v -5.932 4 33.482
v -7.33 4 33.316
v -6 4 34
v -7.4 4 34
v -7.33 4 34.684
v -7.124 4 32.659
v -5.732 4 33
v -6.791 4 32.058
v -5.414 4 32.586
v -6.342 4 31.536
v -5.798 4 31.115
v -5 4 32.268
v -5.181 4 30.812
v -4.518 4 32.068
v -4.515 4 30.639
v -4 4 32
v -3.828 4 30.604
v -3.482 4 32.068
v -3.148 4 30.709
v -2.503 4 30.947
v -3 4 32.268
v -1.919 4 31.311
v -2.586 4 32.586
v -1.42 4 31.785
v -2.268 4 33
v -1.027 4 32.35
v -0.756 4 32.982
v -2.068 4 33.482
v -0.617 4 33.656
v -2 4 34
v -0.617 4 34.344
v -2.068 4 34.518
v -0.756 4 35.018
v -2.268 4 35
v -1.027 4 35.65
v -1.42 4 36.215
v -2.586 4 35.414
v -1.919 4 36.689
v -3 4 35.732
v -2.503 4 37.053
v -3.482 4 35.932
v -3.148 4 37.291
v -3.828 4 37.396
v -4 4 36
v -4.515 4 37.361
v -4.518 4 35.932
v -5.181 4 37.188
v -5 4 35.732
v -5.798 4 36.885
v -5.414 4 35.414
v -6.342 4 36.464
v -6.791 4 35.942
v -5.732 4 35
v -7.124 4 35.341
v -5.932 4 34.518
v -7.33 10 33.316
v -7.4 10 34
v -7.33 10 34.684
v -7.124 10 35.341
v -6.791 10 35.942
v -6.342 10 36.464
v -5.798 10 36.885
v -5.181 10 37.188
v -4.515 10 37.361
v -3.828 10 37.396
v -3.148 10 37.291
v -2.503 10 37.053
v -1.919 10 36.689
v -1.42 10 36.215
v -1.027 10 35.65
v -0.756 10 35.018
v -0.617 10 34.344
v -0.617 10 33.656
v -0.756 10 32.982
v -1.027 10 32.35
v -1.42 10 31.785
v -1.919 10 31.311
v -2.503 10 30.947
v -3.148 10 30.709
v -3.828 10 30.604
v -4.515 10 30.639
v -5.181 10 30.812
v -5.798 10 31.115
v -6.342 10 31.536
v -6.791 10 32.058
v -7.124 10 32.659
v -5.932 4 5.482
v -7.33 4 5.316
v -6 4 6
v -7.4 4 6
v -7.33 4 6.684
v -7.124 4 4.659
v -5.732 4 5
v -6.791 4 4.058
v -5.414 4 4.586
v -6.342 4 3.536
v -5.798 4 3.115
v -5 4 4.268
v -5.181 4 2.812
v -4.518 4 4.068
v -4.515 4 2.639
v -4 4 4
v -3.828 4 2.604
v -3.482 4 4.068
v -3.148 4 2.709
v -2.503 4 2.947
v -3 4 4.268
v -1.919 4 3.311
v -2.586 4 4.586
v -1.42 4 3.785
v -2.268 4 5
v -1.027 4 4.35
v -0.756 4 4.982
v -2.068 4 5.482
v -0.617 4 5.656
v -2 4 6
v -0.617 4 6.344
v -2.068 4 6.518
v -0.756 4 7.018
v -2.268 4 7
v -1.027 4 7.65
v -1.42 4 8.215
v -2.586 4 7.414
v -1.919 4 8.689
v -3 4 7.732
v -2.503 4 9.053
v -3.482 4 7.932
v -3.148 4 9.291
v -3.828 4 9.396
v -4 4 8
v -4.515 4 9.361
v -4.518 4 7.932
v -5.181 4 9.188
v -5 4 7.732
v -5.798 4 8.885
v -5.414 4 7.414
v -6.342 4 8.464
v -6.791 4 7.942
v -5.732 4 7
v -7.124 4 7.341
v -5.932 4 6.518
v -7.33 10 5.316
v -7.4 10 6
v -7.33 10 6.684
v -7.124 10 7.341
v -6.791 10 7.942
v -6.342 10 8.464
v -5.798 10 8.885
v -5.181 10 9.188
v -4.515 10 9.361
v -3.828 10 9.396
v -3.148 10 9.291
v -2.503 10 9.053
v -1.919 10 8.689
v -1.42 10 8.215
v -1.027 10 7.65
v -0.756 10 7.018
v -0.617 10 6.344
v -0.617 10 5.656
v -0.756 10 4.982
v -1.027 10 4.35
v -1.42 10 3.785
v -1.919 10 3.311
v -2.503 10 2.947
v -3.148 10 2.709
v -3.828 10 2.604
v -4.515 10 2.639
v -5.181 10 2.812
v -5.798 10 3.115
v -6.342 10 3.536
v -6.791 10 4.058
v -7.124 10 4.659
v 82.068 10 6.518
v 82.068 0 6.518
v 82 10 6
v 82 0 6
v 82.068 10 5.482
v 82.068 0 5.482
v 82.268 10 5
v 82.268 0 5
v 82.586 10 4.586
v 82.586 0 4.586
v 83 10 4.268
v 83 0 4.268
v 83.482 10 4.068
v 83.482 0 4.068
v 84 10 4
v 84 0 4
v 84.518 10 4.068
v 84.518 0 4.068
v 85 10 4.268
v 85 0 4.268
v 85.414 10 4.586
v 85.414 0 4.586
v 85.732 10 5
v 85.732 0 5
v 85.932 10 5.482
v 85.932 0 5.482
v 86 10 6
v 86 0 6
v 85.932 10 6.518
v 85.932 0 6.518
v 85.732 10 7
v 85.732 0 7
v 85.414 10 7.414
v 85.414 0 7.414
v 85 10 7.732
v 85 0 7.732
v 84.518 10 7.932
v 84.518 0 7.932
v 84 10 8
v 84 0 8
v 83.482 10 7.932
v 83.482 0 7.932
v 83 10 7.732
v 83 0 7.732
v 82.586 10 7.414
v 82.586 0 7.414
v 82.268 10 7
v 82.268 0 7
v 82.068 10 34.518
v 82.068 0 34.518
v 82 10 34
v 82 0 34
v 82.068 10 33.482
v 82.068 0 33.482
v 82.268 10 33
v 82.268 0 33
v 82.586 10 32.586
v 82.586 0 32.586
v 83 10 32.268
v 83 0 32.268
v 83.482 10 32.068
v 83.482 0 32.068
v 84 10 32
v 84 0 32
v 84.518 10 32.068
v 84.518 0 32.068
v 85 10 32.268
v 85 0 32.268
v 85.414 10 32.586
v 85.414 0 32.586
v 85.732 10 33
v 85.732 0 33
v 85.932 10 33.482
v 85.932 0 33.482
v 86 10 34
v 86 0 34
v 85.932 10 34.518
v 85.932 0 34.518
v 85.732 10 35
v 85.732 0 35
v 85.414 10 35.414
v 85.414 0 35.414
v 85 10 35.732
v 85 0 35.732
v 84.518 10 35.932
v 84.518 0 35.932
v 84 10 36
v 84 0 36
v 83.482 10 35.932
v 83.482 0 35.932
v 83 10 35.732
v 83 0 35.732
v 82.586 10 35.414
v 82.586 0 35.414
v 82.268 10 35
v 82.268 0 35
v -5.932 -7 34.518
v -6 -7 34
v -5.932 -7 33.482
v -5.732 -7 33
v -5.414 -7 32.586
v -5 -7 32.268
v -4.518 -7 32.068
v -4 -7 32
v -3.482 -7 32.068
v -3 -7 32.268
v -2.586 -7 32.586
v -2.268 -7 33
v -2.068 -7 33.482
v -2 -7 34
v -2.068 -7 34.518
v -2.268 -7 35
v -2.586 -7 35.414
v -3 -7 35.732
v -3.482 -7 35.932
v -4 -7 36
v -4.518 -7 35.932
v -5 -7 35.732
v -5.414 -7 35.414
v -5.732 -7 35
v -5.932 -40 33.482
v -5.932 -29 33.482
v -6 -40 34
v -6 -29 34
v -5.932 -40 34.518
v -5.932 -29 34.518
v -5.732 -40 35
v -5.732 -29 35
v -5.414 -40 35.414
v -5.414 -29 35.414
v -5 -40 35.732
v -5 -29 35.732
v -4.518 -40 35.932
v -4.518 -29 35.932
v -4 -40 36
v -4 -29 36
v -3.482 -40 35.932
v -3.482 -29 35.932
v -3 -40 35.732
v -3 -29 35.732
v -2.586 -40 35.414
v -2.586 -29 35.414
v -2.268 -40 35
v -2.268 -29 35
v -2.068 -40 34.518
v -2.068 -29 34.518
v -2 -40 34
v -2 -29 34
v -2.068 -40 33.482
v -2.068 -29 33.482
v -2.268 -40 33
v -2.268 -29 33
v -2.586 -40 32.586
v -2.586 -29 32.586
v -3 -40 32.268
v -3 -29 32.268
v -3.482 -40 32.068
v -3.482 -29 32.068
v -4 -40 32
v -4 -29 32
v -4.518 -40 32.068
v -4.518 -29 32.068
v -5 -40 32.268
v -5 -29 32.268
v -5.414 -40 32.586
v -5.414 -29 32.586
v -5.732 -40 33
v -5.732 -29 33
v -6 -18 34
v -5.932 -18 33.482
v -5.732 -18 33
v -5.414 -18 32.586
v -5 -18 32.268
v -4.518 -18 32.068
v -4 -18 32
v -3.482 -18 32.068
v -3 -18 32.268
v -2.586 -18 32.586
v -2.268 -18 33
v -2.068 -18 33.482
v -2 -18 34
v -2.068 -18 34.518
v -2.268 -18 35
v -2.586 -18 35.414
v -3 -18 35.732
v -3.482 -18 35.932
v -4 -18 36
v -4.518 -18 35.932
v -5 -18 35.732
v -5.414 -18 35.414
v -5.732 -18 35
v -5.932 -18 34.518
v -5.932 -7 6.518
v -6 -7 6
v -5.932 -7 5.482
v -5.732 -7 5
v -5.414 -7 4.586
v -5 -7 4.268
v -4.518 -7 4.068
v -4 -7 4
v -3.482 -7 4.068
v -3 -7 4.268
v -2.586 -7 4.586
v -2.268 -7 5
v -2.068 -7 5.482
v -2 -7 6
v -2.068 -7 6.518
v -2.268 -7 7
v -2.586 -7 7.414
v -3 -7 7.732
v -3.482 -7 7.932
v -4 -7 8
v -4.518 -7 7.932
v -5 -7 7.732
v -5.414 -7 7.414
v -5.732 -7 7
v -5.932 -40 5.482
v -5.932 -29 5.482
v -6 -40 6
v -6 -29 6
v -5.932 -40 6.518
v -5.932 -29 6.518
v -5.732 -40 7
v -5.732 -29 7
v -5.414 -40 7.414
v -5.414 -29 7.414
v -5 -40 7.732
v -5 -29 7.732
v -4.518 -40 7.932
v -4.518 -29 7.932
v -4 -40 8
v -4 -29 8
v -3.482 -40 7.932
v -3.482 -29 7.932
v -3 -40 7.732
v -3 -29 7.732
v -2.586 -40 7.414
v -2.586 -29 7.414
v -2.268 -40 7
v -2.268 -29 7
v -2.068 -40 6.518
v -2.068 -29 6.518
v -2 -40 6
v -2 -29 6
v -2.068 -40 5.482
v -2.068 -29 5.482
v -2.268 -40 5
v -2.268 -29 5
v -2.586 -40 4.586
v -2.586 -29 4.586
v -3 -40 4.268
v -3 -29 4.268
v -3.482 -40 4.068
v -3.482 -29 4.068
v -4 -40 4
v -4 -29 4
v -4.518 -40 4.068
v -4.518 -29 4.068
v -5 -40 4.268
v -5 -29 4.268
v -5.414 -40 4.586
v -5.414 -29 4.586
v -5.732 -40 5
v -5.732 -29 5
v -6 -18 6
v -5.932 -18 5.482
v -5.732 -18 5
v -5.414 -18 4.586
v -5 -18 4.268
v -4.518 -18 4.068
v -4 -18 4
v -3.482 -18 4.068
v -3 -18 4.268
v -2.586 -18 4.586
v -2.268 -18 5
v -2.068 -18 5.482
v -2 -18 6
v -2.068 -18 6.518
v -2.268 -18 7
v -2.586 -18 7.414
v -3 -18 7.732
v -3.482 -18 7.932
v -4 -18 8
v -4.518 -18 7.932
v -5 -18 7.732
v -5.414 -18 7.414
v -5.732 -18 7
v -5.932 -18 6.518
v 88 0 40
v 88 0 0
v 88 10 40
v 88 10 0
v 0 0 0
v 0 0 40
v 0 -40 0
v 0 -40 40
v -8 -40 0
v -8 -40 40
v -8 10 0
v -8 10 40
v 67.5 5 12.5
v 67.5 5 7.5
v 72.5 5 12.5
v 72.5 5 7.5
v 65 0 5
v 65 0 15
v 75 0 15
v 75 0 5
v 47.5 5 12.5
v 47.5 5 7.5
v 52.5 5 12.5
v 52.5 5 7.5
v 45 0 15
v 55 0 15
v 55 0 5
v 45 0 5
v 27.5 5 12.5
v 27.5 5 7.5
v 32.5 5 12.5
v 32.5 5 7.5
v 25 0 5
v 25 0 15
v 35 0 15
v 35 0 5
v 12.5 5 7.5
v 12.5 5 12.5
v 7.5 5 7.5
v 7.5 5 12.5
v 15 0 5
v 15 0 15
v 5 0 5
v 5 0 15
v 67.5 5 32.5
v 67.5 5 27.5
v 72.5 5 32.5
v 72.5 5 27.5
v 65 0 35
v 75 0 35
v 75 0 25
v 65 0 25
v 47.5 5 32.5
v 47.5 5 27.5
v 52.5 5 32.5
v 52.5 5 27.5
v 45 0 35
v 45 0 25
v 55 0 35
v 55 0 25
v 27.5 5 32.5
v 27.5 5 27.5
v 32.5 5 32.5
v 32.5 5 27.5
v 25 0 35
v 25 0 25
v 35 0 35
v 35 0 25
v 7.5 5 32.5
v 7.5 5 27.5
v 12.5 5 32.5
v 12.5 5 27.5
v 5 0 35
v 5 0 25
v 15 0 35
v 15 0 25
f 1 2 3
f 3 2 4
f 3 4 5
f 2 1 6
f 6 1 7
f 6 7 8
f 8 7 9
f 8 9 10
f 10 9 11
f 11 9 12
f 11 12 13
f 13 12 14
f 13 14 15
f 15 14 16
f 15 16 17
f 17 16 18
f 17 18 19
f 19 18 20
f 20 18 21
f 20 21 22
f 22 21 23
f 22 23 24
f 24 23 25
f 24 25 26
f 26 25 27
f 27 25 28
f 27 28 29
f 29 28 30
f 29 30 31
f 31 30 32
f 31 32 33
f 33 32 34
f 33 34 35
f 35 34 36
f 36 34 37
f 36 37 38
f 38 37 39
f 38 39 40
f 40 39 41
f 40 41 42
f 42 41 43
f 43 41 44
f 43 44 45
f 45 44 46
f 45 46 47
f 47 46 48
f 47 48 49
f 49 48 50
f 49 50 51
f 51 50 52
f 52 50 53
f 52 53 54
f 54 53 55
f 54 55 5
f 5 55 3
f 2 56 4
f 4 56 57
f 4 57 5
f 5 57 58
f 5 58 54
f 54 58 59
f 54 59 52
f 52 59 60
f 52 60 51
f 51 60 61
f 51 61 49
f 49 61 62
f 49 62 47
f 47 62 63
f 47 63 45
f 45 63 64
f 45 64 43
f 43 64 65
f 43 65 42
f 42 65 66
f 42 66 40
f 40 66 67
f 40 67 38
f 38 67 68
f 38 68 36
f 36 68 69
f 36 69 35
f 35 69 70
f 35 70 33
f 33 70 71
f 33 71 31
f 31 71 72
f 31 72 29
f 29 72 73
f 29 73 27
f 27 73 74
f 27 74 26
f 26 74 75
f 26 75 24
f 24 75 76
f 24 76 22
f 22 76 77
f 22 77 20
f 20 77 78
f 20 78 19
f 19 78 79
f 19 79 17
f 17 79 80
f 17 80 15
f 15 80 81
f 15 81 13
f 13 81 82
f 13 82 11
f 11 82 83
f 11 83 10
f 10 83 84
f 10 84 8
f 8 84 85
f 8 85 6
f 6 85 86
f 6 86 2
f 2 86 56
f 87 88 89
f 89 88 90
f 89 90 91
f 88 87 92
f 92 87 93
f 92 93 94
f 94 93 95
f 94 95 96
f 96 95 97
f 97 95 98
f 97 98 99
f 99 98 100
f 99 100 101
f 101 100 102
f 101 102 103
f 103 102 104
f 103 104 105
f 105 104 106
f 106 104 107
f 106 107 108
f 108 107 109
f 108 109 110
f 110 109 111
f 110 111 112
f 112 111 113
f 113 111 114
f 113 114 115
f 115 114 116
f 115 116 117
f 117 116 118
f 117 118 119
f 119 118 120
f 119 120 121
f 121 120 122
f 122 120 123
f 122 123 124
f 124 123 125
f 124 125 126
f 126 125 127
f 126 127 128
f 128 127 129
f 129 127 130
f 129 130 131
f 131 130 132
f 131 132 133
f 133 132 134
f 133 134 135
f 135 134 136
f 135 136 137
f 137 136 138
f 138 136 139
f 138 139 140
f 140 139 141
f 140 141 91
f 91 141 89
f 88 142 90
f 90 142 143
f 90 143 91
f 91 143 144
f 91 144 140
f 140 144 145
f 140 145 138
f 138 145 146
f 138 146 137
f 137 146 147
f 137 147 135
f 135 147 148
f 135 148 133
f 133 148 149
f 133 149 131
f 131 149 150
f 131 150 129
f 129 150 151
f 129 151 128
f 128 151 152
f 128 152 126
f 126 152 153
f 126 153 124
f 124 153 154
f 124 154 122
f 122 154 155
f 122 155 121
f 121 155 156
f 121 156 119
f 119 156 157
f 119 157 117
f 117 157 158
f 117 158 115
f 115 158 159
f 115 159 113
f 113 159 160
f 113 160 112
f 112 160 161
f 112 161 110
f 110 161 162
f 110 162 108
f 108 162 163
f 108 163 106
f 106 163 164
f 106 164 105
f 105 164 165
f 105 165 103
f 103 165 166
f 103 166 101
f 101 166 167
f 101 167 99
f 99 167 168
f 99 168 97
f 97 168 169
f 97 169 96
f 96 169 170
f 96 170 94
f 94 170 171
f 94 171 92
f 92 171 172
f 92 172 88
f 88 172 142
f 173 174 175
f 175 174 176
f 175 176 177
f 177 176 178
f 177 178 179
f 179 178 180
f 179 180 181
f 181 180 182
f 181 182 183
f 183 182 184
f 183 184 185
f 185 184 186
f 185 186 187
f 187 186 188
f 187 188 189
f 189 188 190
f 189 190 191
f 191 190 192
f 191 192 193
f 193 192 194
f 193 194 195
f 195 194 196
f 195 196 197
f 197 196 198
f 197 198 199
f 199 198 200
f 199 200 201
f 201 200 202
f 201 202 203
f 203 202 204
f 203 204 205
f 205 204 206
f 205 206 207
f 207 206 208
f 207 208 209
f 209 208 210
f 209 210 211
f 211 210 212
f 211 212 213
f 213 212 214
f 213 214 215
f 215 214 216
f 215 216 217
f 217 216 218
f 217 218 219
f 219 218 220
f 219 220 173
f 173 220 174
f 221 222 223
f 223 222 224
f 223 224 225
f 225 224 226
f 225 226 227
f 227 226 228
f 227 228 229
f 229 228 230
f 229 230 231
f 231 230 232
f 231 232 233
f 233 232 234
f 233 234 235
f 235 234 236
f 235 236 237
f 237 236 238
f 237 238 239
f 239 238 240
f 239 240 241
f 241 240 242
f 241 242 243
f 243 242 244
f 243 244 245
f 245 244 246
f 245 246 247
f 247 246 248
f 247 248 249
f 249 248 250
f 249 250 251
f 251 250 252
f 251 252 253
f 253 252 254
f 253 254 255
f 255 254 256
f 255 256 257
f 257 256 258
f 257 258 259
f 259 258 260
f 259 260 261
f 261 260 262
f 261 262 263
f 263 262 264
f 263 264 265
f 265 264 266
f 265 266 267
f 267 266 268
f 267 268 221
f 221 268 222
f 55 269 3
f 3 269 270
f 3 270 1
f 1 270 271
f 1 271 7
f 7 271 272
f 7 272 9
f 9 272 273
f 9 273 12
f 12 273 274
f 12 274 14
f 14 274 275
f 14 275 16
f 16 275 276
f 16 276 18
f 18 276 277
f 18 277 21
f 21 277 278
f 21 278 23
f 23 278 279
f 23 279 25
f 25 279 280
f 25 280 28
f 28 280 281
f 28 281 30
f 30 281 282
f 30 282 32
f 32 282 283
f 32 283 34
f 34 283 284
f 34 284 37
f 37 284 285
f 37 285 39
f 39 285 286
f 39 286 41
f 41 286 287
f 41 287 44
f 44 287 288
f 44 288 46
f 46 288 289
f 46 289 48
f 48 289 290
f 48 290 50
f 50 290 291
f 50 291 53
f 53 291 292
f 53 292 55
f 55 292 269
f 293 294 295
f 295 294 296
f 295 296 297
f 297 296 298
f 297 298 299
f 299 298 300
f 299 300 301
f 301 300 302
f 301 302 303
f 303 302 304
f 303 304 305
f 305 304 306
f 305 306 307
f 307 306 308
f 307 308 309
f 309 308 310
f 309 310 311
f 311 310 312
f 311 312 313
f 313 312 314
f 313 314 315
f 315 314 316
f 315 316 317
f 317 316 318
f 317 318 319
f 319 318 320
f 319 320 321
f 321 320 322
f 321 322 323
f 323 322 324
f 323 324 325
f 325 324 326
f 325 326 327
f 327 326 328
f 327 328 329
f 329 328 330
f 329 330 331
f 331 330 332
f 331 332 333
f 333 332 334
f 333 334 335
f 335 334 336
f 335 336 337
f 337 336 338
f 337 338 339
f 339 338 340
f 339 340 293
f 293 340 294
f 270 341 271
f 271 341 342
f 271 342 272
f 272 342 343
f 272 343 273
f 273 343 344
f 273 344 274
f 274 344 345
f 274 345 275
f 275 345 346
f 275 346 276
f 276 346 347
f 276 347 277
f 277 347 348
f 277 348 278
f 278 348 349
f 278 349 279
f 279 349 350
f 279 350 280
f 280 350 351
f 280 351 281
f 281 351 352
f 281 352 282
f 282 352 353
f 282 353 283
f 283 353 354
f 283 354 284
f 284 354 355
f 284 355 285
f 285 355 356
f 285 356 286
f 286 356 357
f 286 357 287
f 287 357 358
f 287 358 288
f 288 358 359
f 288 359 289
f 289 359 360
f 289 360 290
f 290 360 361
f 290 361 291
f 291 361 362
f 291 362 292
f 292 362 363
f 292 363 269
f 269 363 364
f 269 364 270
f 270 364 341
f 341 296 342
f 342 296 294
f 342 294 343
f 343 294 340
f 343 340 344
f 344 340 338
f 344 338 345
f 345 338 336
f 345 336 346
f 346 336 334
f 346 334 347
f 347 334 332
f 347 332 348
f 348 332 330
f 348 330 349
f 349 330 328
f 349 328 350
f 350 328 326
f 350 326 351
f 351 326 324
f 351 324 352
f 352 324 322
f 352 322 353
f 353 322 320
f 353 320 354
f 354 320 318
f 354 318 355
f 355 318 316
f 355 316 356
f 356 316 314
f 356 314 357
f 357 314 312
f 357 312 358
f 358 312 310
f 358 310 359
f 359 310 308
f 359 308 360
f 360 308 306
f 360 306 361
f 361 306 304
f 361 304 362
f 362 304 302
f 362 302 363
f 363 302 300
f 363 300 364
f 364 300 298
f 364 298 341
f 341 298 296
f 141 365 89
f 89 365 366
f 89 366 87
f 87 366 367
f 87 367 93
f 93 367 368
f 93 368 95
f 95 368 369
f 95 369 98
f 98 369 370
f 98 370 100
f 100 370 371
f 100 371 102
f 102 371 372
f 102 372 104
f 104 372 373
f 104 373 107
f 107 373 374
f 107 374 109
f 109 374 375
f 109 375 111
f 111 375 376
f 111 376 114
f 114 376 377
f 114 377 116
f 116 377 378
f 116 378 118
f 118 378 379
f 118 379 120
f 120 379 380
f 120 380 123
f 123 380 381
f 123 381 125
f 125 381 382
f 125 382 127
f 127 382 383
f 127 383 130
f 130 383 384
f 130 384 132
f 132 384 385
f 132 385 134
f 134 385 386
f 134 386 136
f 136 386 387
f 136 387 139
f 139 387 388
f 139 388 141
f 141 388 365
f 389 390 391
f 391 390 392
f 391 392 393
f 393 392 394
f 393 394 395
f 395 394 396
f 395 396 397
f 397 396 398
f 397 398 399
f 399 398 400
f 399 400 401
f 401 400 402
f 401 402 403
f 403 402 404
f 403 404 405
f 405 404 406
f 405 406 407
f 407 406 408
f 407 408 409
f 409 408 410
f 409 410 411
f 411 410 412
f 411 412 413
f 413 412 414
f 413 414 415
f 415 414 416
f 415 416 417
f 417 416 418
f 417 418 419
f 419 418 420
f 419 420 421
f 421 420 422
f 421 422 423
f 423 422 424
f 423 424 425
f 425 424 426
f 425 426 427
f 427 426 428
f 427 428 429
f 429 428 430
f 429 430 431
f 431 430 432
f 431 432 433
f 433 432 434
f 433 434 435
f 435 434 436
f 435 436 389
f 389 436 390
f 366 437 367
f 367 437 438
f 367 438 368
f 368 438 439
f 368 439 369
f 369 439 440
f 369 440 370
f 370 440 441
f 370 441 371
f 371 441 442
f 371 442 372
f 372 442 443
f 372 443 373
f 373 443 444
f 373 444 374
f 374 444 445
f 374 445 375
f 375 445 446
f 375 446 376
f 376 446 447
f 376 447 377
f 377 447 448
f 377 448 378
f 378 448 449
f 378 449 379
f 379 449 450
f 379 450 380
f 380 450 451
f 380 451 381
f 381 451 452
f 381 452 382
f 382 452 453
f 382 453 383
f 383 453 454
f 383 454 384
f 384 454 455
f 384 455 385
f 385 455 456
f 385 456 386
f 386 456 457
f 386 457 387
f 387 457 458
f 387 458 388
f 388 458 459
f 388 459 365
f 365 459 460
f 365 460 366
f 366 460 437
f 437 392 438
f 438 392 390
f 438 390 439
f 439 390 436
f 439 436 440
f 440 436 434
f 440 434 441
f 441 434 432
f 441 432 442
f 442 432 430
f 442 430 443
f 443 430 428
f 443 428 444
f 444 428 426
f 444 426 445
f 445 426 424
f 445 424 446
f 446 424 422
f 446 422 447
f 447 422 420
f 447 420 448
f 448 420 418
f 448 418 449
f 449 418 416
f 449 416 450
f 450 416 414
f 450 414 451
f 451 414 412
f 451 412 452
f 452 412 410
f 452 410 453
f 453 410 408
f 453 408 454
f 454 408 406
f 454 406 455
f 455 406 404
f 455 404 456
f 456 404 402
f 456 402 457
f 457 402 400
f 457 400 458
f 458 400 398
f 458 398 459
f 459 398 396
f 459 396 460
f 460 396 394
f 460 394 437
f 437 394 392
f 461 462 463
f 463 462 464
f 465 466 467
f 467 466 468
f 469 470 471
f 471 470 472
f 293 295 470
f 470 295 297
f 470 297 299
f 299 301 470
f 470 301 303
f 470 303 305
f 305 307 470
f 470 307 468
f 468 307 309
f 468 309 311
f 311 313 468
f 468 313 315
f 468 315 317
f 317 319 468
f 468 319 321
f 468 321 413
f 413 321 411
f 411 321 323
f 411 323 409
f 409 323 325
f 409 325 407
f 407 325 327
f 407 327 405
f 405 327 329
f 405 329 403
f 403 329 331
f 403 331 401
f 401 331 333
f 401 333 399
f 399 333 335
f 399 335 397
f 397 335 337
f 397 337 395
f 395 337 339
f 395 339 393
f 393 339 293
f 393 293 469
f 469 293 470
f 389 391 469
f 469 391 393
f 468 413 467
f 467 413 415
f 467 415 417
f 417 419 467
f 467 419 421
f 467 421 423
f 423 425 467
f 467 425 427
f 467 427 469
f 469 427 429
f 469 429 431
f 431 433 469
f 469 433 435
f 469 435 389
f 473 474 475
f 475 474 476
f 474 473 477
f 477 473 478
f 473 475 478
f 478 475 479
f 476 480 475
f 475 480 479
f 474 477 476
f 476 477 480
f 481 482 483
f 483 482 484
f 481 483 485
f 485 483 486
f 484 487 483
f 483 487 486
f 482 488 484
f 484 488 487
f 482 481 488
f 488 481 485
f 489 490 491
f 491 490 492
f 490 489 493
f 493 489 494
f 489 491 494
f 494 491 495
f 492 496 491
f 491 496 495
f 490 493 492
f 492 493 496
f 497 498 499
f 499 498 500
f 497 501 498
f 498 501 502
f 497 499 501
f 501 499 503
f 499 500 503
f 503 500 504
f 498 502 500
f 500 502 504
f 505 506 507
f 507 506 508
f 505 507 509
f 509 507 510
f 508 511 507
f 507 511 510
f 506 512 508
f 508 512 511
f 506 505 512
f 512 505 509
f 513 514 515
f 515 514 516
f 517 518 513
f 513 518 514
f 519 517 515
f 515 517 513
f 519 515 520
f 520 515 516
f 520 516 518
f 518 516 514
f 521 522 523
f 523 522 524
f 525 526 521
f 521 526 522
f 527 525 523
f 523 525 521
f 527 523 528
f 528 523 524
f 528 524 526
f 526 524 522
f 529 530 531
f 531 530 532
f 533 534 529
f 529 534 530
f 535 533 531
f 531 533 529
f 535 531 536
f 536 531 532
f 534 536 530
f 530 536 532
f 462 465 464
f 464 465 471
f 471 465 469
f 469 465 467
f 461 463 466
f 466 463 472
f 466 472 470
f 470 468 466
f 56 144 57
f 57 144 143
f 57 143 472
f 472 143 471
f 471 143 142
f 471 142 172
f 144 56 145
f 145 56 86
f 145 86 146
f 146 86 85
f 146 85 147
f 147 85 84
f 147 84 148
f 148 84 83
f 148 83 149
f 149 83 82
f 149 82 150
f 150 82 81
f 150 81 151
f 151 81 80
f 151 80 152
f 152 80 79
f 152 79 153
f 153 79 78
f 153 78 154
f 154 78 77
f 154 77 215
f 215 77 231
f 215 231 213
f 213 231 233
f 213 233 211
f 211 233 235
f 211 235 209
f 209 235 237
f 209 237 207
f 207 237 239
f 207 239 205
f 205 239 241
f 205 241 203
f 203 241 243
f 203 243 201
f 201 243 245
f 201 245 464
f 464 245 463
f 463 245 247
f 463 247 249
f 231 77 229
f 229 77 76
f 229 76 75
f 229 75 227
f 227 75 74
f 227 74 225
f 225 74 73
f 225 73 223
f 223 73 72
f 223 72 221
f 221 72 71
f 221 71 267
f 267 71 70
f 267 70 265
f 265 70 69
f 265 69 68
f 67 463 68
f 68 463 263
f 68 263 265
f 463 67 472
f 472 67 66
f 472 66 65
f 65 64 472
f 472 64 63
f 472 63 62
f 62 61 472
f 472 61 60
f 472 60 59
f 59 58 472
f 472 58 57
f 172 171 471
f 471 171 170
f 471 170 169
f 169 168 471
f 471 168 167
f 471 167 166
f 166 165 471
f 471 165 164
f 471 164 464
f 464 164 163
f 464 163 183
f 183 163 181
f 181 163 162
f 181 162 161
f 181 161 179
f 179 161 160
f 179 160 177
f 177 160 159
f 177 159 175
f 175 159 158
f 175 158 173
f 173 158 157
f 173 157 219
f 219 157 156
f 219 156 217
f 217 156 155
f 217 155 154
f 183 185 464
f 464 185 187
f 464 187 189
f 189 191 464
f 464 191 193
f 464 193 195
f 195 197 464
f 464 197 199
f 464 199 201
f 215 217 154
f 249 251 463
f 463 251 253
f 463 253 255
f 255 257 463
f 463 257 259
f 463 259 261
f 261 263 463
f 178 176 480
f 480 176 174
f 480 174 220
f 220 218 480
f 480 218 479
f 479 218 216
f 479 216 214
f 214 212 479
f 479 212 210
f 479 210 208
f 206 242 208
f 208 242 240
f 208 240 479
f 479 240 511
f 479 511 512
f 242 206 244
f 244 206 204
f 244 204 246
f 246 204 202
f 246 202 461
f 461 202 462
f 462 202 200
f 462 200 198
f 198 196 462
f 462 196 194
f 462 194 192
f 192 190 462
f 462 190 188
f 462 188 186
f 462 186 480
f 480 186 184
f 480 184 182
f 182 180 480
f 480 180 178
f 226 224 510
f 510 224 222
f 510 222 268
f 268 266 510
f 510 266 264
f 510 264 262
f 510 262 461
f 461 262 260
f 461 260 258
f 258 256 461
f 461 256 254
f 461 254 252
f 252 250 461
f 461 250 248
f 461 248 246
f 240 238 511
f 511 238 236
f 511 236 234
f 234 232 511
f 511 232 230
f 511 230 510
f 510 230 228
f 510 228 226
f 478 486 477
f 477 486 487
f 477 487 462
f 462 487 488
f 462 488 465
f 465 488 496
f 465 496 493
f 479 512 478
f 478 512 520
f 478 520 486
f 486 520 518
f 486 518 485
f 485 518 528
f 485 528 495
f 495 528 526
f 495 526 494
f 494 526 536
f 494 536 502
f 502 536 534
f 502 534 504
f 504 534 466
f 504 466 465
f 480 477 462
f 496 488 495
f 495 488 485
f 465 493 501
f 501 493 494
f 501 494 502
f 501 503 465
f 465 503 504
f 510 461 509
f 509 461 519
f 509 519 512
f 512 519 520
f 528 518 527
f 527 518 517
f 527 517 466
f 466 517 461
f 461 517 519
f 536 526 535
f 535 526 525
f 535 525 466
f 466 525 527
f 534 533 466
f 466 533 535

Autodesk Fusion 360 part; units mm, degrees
sketch "baseplate" plane through (0, 0, 0) normal (0, 1, 0) x (1, 0, 0)
  line L0 (0, 0) -> (80, 0)
  line L1 (80, 0) -> (80, -40)
  line L2 (80, -40) -> (0, -40)
  line L3 (0, -40) -> (0, 0)
  dimension "d1" = 40
  dimension "d2" = 80
extrude "Extrude1" add sketch "baseplate" along normal blind 10
sketch "outside_pryamid" plane through (0, 0, 0) normal (0, 1, 0) x (1, 0, 0)
  line L0 (5, -35) -> (15, -35)
  line L1 (15, -35) -> (15, -25)
  line L2 (15, -25) -> (5, -25)
  line L3 (5, -25) -> (5, -35)
  line L4 (25, -35) -> (35, -35)
  line L5 (35, -35) -> (35, -25)
  line L6 (35, -25) -> (25, -25)
  line L7 (25, -25) -> (25, -35)
  line L8 (45, -35) -> (55, -35)
  line L9 (55, -35) -> (55, -25)
  line L10 (55, -25) -> (45, -25)
  line L11 (45, -25) -> (45, -35)
  line L12 (65, -35) -> (75, -35)
  line L13 (75, -35) -> (75, -25)
  line L14 (75, -25) -> (65, -25)
  line L15 (65, -25) -> (65, -35)
  line L16 (25, -15) -> (35, -15)
  line L17 (35, -15) -> (35, -5)
  line L18 (35, -5) -> (25, -5)
  line L19 (25, -5) -> (25, -15)
  line L20 (5, -15) -> (15, -15)
  line L21 (15, -15) -> (15, -5)
  line L22 (15, -5) -> (5, -5)
  line L23 (5, -5) -> (5, -15)
  line L24 (45, -15) -> (55, -15)
  line L25 (55, -15) -> (55, -5)
  line L26 (55, -5) -> (45, -5)
  line L27 (45, -5) -> (45, -15)
  line L28 (65, -15) -> (75, -15)
  line L29 (75, -15) -> (75, -5)
  line L30 (75, -5) -> (65, -5)
  line L31 (65, -5) -> (65, -15)
  dimension "d5" = 10
  dimension "d6" = 10
ref_plane "WorkPlane1" through (0, 5, 0) normal (0, 1, 0) x (0, 0, 1)
sketch "inside_pryamid" plane through (0, 5, 0) normal (0, 1, 0) x (1, 0, 0)
  line L0 (7.5, -10) -> (7.5, -12.5)
  line L1 (7.5, -12.5) -> (12.5, -12.5)
  line L2 (12.5, -12.5) -> (12.5, -7.5)
  line L3 (12.5, -7.5) -> (7.5, -7.5)
  line L4 (7.5, -7.5) -> (7.5, -10)
  line L5 (32.5, -7.5) -> (27.5, -7.5)
  line L6 (27.5, -10) -> (27.5, -12.5)
  line L7 (32.5, -12.5) -> (32.5, -7.5)
  line L8 (27.5, -7.5) -> (27.5, -10)
  line L9 (27.5, -12.5) -> (32.5, -12.5)
  line L10 (47.5, -7.5) -> (47.5, -10)
  line L11 (47.5, -12.5) -> (52.5, -12.5)
  line L12 (52.5, -7.5) -> (47.5, -7.5)
  line L13 (47.5, -10) -> (47.5, -12.5)
  line L14 (52.5, -12.5) -> (52.5, -7.5)
  line L15 (67.5, -10) -> (67.5, -12.5)
  line L16 (67.5, -12.5) -> (72.5, -12.5)
  line L17 (67.5, -7.5) -> (67.5, -10)
  line L18 (72.5, -12.5) -> (72.5, -7.5)
  line L19 (72.5, -7.5) -> (67.5, -7.5)
  line L20 (67.5, -10) -> (67.5, -12.5)
  line L21 (7.5, -7.5) -> (7.5, -10)
  line L22 (12.5, -7.5) -> (7.5, -7.5)
  line L23 (7.5, -10) -> (7.5, -12.5)
  line L24 (67.5, -12.5) -> (72.5, -12.5)
  line L25 (27.5, -10) -> (27.5, -12.5)
  line L26 (27.5, -12.5) -> (32.5, -12.5)
  line L27 (7.5, -12.5) -> (12.5, -12.5)
  line L28 (32.5, -12.5) -> (32.5, -7.5)
  line L29 (72.5, -12.5) -> (72.5, -7.5)
  line L30 (47.5, -7.5) -> (47.5, -10)
  line L31 (52.5, -12.5) -> (52.5, -7.5)
  line L32 (72.5, -7.5) -> (67.5, -7.5)
  line L33 (47.5, -10) -> (47.5, -12.5)
  line L34 (52.5, -7.5) -> (47.5, -7.5)
  line L35 (67.5, -7.5) -> (67.5, -10)
  line L36 (47.5, -12.5) -> (52.5, -12.5)
  line L37 (32.5, -7.5) -> (27.5, -7.5)
  line L38 (27.5, -7.5) -> (27.5, -10)
  line L39 (12.5, -12.5) -> (12.5, -7.5)
  line L40 (72.5, -32.5) -> (72.5, -27.5)
  line L41 (12.5, -32.5) -> (12.5, -27.5)
  line L42 (72.5, -27.5) -> (67.5, -27.5)
  line L43 (7.5, -30) -> (7.5, -32.5)
  line L44 (67.5, -30) -> (67.5, -32.5)
  line L45 (72.5, -27.5) -> (67.5, -27.5)
  line L46 (67.5, -27.5) -> (67.5, -30)
  line L47 (47.5, -30) -> (47.5, -32.5)
  line L48 (12.5, -27.5) -> (7.5, -27.5)
  line L49 (67.5, -27.5) -> (67.5, -30)
  line L50 (67.5, -30) -> (67.5, -32.5)
  line L51 (7.5, -32.5) -> (12.5, -32.5)
  line L52 (67.5, -32.5) -> (72.5, -32.5)
  line L53 (72.5, -32.5) -> (72.5, -27.5)
  line L54 (7.5, -30) -> (7.5, -32.5)
  line L55 (47.5, -32.5) -> (52.5, -32.5)
  line L56 (47.5, -32.5) -> (52.5, -32.5)
  line L57 (67.5, -32.5) -> (72.5, -32.5)
  line L58 (52.5, -32.5) -> (52.5, -27.5)
  line L59 (7.5, -32.5) -> (12.5, -32.5)
  line L60 (52.5, -27.5) -> (47.5, -27.5)
  line L61 (52.5, -27.5) -> (47.5, -27.5)
  line L62 (47.5, -30) -> (47.5, -32.5)
  line L63 (7.5, -27.5) -> (7.5, -30)
  line L64 (27.5, -30) -> (27.5, -32.5)
  line L65 (32.5, -27.5) -> (27.5, -27.5)
  line L66 (27.5, -32.5) -> (32.5, -32.5)
  line L67 (52.5, -32.5) -> (52.5, -27.5)
  line L68 (27.5, -27.5) -> (27.5, -30)
  line L69 (32.5, -32.5) -> (32.5, -27.5)
  line L70 (27.5, -32.5) -> (32.5, -32.5)
  line L71 (27.5, -30) -> (27.5, -32.5)
  line L72 (12.5, -27.5) -> (7.5, -27.5)
  line L73 (7.5, -27.5) -> (7.5, -30)
  line L74 (47.5, -27.5) -> (47.5, -30)
  line L75 (12.5, -32.5) -> (12.5, -27.5)
  line L76 (47.5, -27.5) -> (47.5, -30)
  line L77 (32.5, -32.5) -> (32.5, -27.5)
  line L78 (32.5, -27.5) -> (27.5, -27.5)
  line L79 (27.5, -27.5) -> (27.5, -30)
loft "Loft1" cut profiles "outside_pryamid", "inside_pryamid" section 1 contours L0 L1 L2 L3 section 2 contours L41 L43 L48 L51 L54 L59 L63 L72 L73 L75
loft "Loft2" cut profiles "outside_pryamid", "inside_pryamid" section 1 contours L4 L5 L6 L7 section 2 contours L64 L65 L66 L68 L69 L70 L71 L77 L78 L79
loft "Loft3" cut profiles "outside_pryamid", "inside_pryamid" section 1 contours L8 L9 L10 L11 section 2 contours L47 L55 L56 L58 L60 L61 L62 L67 L74 L76
loft "Loft4" cut profiles "inside_pryamid", "outside_pryamid" section 1 contours L40 L42 L44 L45 L46 L49 L50 L52 L53 L57 section 2 contours L12 L13 L14 L15
loft "Loft5" cut profiles "inside_pryamid", "outside_pryamid" section 1 contours L0 L1 L2 L3 L4 L21 L22 L23 L27 L39 section 2 contours L20 L21 L22 L23
loft "Loft6" cut profiles "inside_pryamid", "outside_pryamid" section 1 contours L5 L6 L7 L8 L9 L25 L26 L28 L37 L38 section 2 contours L16 L17 L18 L19
loft "Loft7" cut profiles "inside_pryamid", "outside_pryamid" section 1 contours L10 L11 L12 L13 L14 L30 L31 L33 L34 L36 section 2 contours L24 L25 L26 L27
loft "Loft8" cut profiles "inside_pryamid", "outside_pryamid" section 1 contours L15 L16 L17 L18 L19 L20 L24 L29 L32 L35 section 2 contours L28 L29 L30 L31
sketch "sidewall" plane through (0, 0, 0) normal (0, 1, 0) x (1, 0, 0)
  line L0 (0, 0) -> (-8, 0)
  line L1 (-8, 0) -> (-8, -40)
  line L2 (-8, -40) -> (0, -40)
  line L3 (0, -40) -> (0, 0)
  dimension "d12" = 8
extrude "Extrude2" add sketch "sidewall" along normal blind -40 and the other way blind -10
sketch "sidemount" plane through (0, 0, 0) normal (0, 1, 0) x (1, 0, 0)
  line L0 (80, 0) -> (88, 0)
  line L1 (88, 0) -> (88, -40)
  line L2 (88, -40) -> (80, -40)
  line L3 (80, -40) -> (80, 0)
extrude "Extrude3" add sketch "sidemount" along normal blind 10
sketch "Sketch6" plane through (0, 0, 0) normal (0, 1, 0) x (1, 0, 0)
  circle A0 centre (-4, -34) radius 2
  circle A1 centre (-4, -6) radius 2
  circle A2 centre (-4, -34) radius 3.4
  circle A3 centre (-4, -6) radius 3.4
  line L0 (88, 0) -> (84, 0)
  line L1 (84, 0) -> (84, -6)
  line L2 (84, -6) -> (88, -6)
  line L3 (88, -6) -> (88, 0)
  circle A4 centre (84, -34) radius 2
  circle A5 centre (84, -6) radius 2
  dimension "d19" = 4
  dimension "d20" = 4
  dimension "d21" = 6.8
  dimension "d22" = 6.8
  dimension "d25" = 4
  dimension "d26" = 6
  dimension "d27" = 4
  dimension "d28" = 4
extrude "Extrude4" cut sketch "Sketch6" against normal blind 50 contours A0 | A1
extrude "Extrude5" cut sketch "Sketch6" along normal blind 40 contours L1 L2 A5 | L1 L2 A5 | A4
extrude "Extrude6" cut sketch "Sketch6" along normal through all and the other way blind 44 contours A0 | A1
extrude "Extrude7" cut sketch "Sketch6" along normal blind 10 and the other way blind -4 contours A2 | A3
